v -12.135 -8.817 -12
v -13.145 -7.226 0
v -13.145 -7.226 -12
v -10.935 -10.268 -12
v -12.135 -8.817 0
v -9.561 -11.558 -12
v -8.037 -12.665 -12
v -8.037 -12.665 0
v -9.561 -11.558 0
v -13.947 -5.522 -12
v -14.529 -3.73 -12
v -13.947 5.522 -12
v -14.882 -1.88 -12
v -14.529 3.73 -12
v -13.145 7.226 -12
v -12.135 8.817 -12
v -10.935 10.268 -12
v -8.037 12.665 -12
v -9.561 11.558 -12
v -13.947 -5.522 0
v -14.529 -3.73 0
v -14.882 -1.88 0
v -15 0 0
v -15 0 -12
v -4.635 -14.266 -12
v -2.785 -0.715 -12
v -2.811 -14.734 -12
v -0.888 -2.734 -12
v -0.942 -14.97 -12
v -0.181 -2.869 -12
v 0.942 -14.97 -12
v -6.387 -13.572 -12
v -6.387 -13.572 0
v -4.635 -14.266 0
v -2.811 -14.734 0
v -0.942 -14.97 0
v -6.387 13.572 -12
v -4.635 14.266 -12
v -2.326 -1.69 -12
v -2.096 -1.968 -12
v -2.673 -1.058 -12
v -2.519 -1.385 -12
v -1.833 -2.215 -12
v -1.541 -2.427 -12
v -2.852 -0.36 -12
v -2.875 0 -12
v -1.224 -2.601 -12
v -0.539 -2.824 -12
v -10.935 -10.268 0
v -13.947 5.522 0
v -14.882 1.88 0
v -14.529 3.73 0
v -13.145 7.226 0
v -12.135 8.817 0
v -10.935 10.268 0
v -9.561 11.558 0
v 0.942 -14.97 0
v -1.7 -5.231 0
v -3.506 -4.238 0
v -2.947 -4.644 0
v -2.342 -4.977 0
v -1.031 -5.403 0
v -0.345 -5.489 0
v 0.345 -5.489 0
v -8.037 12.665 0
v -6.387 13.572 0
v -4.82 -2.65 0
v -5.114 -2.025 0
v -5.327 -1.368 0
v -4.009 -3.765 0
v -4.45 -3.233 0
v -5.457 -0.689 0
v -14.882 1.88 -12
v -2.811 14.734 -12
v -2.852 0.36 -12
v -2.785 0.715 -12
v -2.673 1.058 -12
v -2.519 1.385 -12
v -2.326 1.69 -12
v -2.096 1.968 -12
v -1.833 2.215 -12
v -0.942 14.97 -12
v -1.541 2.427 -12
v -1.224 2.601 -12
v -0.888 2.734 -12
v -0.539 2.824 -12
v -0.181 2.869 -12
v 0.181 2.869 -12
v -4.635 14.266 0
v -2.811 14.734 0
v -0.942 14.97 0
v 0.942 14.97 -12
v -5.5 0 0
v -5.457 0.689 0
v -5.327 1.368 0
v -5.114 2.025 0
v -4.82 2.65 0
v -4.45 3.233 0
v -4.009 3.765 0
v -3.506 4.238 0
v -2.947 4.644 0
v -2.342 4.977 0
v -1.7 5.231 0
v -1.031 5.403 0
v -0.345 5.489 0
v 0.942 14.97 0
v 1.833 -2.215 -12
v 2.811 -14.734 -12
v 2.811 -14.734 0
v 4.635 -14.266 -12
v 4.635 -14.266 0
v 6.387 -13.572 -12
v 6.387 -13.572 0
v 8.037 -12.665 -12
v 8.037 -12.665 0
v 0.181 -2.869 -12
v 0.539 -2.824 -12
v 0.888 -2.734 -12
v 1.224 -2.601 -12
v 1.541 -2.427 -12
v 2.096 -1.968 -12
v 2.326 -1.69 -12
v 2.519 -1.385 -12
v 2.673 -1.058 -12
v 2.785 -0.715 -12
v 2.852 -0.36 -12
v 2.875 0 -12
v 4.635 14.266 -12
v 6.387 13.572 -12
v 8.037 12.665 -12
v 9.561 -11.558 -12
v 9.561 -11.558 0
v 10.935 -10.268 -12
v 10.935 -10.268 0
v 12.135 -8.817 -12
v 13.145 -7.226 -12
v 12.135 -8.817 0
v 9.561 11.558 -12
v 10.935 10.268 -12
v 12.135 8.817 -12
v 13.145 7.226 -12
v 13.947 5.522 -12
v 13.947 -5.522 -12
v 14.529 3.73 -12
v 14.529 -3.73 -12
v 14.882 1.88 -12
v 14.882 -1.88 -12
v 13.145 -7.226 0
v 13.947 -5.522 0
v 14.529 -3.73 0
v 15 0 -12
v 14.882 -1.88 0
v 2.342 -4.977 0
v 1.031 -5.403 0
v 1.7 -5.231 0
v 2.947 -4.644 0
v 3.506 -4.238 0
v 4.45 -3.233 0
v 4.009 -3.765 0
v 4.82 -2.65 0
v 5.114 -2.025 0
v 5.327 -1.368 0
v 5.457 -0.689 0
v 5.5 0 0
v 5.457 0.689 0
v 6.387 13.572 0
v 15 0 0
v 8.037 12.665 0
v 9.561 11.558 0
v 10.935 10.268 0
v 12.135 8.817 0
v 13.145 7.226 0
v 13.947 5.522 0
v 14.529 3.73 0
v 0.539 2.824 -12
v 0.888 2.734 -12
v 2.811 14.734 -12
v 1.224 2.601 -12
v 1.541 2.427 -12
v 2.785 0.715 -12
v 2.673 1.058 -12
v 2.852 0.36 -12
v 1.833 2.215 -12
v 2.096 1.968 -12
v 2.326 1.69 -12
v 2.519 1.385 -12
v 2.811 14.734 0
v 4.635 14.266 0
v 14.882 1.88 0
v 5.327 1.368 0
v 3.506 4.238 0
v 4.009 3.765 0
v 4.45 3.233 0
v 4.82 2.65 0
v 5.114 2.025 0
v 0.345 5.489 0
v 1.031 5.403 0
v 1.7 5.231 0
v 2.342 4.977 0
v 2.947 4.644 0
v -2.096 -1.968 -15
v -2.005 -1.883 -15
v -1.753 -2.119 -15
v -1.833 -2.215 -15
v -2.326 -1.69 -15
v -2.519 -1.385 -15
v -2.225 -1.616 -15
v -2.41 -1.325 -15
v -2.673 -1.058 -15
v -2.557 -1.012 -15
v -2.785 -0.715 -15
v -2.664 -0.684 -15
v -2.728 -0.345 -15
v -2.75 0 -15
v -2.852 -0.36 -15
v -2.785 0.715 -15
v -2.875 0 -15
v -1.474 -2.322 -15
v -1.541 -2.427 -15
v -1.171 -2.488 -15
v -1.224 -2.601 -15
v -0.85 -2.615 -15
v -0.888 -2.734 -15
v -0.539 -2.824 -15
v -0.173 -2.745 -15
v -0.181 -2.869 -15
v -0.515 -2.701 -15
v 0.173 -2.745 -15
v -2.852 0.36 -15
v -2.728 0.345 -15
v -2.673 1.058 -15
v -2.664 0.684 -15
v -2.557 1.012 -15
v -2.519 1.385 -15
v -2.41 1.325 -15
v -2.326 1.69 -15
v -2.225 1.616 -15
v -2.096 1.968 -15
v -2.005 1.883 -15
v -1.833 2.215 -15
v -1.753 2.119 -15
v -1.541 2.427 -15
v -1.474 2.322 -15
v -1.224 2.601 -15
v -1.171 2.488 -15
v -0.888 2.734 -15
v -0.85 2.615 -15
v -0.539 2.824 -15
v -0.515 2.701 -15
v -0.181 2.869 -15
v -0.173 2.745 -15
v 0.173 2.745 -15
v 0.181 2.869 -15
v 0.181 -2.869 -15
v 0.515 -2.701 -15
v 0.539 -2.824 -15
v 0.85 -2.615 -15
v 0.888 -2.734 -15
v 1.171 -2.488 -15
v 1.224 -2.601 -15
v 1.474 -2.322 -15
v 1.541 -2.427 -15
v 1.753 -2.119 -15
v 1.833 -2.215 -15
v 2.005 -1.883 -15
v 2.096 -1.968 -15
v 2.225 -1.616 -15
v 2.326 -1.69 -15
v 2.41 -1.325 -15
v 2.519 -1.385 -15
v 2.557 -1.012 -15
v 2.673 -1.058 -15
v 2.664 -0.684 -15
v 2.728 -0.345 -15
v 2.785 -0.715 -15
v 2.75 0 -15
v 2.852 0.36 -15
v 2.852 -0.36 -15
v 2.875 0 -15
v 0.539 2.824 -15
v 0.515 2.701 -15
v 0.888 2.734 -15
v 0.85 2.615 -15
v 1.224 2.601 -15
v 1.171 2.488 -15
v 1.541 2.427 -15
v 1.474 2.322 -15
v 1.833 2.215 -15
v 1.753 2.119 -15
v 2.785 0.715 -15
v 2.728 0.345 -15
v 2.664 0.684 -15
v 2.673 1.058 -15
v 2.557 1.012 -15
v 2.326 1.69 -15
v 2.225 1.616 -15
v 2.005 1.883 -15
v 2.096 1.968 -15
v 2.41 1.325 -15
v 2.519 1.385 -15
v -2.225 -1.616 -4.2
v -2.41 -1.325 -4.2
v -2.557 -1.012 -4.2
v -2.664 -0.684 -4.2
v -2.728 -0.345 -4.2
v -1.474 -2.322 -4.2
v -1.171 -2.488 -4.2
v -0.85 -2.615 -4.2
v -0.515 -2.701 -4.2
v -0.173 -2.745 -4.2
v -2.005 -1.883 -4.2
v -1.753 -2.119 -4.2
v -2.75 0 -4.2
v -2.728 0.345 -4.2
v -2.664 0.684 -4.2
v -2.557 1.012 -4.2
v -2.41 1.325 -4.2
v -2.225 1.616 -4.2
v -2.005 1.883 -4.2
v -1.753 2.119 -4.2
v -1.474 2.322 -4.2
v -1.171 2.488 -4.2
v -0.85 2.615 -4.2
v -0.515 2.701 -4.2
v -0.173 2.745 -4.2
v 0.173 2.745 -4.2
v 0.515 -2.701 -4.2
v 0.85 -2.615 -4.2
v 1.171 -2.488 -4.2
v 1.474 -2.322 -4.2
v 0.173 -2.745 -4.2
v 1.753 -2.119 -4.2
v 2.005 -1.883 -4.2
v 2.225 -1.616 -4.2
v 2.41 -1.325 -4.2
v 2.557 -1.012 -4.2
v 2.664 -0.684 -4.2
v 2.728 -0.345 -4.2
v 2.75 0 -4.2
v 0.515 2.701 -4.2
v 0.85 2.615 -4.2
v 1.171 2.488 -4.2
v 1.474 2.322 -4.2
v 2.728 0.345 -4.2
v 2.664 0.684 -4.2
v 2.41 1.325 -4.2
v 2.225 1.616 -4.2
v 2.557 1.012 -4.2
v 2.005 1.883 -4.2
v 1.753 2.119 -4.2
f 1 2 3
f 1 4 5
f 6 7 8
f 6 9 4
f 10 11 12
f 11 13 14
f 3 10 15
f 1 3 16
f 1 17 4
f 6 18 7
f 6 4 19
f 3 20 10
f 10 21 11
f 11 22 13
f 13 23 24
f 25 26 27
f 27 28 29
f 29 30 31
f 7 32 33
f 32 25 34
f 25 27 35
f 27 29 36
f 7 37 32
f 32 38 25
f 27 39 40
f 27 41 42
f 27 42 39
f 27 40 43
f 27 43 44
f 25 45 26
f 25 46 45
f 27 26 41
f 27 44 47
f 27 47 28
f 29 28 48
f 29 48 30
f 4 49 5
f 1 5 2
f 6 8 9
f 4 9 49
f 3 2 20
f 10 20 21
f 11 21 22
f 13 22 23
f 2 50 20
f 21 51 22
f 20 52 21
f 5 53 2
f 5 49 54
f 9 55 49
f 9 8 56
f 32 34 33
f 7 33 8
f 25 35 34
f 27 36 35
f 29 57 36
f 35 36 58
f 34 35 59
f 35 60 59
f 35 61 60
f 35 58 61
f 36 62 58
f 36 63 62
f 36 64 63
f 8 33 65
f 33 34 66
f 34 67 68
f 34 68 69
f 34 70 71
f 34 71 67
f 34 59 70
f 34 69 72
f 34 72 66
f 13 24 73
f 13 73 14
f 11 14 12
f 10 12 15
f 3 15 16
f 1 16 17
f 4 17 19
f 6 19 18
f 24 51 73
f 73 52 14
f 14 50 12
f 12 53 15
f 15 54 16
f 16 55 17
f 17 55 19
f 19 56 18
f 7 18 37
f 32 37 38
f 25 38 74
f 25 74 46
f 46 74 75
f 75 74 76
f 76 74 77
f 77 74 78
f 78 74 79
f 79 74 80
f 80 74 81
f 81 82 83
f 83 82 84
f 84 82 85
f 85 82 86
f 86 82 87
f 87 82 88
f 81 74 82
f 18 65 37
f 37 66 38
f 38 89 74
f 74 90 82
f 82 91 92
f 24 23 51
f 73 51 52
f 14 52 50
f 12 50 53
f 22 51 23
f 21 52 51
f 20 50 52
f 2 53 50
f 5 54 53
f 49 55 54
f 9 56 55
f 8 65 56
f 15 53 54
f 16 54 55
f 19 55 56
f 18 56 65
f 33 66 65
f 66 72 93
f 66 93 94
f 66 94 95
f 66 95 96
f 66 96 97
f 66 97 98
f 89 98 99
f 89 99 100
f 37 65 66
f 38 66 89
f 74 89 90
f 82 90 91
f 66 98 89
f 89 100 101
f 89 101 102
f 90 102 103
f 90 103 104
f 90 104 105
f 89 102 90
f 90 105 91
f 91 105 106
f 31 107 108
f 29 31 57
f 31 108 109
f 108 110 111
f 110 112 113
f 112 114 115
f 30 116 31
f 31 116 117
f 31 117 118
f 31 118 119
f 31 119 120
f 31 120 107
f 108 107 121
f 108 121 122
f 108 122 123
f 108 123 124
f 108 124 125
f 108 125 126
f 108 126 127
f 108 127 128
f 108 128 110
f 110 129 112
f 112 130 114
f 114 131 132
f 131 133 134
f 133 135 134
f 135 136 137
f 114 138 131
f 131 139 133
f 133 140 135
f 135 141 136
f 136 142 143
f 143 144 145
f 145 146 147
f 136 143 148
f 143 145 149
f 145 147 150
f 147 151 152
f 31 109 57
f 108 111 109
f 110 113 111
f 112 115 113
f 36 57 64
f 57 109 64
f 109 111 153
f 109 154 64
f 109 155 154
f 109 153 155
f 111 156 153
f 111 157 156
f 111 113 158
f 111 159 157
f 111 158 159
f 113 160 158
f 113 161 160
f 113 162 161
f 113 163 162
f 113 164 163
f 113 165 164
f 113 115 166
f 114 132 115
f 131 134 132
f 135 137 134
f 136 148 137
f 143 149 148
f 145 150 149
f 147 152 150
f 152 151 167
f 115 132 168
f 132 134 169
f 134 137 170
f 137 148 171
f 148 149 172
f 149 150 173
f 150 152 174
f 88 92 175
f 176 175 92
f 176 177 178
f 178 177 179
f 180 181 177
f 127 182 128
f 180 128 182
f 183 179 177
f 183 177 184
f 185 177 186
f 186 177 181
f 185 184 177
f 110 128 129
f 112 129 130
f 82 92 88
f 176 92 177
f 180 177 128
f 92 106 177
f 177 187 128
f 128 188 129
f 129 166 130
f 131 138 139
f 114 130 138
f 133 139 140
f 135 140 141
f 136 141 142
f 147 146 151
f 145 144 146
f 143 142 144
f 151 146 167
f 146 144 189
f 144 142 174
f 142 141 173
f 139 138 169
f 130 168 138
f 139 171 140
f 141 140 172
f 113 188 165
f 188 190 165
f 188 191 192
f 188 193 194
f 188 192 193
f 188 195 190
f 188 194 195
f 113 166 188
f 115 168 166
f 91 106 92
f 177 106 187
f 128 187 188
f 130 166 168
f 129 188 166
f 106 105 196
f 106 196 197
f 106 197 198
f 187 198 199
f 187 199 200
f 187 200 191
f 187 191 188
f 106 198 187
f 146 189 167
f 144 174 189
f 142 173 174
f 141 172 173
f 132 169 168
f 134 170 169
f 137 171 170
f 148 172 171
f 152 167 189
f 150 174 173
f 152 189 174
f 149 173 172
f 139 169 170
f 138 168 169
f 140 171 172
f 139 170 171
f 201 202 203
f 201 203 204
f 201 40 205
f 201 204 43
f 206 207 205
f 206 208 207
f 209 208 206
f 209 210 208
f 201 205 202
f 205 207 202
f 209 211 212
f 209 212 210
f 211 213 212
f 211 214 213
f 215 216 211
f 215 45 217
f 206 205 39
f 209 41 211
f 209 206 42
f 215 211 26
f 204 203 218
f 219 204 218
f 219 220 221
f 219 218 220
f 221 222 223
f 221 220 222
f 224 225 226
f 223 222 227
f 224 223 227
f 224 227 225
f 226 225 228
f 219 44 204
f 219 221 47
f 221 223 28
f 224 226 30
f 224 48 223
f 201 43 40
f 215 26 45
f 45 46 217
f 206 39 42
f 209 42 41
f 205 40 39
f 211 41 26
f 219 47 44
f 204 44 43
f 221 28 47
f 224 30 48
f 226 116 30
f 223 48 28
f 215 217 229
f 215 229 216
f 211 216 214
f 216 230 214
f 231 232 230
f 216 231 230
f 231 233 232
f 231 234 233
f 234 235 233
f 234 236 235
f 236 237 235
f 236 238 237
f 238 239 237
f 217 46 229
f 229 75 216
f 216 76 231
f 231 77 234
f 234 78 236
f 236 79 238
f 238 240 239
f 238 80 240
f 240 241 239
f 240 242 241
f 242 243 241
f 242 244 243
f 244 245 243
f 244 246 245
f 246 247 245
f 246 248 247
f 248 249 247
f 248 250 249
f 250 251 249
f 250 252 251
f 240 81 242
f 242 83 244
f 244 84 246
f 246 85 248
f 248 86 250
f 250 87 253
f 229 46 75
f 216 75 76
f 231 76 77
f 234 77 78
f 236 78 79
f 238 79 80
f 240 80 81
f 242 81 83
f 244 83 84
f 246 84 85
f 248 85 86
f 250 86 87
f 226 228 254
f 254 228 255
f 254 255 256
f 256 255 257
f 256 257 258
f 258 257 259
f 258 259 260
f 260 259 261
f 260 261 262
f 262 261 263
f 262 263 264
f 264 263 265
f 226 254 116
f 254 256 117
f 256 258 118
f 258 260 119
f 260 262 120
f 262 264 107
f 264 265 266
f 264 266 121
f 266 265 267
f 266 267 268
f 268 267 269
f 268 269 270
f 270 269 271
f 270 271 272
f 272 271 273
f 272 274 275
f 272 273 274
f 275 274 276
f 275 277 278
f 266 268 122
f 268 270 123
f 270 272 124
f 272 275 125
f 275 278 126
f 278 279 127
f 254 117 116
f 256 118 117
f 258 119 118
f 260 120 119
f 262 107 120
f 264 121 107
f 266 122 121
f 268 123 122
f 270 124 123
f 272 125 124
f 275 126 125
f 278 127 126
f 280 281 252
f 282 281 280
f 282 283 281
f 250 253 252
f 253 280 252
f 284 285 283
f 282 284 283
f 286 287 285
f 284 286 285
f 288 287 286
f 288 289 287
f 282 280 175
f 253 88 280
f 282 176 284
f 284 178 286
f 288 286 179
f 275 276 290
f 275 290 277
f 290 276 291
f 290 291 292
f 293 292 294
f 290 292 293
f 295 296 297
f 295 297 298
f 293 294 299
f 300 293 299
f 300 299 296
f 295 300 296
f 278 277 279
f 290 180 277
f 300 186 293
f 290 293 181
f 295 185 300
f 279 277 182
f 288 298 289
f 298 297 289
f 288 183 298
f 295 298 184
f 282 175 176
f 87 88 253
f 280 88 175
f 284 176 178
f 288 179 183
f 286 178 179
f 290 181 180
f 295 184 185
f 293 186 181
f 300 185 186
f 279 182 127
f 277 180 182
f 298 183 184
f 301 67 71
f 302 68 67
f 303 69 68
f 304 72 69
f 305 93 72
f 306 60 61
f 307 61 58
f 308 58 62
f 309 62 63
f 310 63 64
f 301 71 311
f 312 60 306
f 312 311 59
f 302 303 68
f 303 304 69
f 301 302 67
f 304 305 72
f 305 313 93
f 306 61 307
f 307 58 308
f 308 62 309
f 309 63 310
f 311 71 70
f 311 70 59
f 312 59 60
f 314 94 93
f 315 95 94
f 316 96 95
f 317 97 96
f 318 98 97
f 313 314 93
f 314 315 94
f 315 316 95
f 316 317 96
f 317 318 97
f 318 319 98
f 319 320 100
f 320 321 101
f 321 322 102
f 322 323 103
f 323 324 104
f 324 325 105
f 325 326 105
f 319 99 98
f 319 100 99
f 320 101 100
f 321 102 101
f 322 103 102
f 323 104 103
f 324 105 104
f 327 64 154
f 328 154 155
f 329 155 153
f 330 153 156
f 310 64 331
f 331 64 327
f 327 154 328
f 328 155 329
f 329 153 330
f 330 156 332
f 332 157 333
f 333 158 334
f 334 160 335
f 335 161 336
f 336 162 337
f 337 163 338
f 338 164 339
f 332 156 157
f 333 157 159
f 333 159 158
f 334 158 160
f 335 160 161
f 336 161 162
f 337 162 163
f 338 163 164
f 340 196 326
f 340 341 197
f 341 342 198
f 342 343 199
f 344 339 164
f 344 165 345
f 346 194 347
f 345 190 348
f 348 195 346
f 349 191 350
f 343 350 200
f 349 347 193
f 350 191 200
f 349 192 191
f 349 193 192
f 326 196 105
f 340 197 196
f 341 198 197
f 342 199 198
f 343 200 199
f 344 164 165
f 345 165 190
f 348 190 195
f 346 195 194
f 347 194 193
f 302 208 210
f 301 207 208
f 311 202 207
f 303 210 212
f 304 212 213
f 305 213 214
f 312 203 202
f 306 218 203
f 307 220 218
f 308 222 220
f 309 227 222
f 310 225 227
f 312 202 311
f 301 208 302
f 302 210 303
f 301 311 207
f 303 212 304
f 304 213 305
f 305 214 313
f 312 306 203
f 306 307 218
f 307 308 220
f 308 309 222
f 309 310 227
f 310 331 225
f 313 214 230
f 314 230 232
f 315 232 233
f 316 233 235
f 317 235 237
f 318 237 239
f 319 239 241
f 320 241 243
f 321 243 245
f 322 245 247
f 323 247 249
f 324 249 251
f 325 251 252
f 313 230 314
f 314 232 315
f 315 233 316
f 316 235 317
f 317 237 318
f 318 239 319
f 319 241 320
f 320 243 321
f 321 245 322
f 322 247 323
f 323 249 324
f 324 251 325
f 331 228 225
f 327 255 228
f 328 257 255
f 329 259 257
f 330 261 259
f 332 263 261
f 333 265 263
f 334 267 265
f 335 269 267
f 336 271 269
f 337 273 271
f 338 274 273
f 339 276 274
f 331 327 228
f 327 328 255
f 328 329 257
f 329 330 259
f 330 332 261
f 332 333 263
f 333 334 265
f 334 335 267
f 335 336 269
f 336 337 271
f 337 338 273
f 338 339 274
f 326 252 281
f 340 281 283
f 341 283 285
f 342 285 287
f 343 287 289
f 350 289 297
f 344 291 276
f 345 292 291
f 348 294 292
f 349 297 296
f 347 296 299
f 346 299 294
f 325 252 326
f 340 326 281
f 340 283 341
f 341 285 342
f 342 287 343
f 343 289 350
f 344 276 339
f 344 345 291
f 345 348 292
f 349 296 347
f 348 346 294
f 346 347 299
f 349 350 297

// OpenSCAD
$fn = 50;

difference() {
	union() {
		translate(v = [0, 0, -12.0]) {
			cylinder(h = 12, r = 15.0);
		}
		#translate(v = [0, 0, -15.0]) {
			cylinder(h = 15, r = 2.875);
		}
	}
	union() {
		translate(v = [0, 0, 0]) {
			rotate(a = [0, 0, 0]) {
				difference() {
					union() {
						translate(v = [0, 0, -15.0]) {
							cylinder(h = 15, r = 2.25);
						}
						translate(v = [0, 0, -4.2]) {
							cylinder(h = 4.2, r1 = 2.75, r2 = 5.5);
						}
						translate(v = [0, 0, -15.0]) {
							cylinder(h = 15, r = 2.75);
						}
						translate(v = [0, 0, -15.0]) {
							cylinder(h = 15, r = 2.25);
						}
					}
					union();
				}
			}
		}
	}
}
